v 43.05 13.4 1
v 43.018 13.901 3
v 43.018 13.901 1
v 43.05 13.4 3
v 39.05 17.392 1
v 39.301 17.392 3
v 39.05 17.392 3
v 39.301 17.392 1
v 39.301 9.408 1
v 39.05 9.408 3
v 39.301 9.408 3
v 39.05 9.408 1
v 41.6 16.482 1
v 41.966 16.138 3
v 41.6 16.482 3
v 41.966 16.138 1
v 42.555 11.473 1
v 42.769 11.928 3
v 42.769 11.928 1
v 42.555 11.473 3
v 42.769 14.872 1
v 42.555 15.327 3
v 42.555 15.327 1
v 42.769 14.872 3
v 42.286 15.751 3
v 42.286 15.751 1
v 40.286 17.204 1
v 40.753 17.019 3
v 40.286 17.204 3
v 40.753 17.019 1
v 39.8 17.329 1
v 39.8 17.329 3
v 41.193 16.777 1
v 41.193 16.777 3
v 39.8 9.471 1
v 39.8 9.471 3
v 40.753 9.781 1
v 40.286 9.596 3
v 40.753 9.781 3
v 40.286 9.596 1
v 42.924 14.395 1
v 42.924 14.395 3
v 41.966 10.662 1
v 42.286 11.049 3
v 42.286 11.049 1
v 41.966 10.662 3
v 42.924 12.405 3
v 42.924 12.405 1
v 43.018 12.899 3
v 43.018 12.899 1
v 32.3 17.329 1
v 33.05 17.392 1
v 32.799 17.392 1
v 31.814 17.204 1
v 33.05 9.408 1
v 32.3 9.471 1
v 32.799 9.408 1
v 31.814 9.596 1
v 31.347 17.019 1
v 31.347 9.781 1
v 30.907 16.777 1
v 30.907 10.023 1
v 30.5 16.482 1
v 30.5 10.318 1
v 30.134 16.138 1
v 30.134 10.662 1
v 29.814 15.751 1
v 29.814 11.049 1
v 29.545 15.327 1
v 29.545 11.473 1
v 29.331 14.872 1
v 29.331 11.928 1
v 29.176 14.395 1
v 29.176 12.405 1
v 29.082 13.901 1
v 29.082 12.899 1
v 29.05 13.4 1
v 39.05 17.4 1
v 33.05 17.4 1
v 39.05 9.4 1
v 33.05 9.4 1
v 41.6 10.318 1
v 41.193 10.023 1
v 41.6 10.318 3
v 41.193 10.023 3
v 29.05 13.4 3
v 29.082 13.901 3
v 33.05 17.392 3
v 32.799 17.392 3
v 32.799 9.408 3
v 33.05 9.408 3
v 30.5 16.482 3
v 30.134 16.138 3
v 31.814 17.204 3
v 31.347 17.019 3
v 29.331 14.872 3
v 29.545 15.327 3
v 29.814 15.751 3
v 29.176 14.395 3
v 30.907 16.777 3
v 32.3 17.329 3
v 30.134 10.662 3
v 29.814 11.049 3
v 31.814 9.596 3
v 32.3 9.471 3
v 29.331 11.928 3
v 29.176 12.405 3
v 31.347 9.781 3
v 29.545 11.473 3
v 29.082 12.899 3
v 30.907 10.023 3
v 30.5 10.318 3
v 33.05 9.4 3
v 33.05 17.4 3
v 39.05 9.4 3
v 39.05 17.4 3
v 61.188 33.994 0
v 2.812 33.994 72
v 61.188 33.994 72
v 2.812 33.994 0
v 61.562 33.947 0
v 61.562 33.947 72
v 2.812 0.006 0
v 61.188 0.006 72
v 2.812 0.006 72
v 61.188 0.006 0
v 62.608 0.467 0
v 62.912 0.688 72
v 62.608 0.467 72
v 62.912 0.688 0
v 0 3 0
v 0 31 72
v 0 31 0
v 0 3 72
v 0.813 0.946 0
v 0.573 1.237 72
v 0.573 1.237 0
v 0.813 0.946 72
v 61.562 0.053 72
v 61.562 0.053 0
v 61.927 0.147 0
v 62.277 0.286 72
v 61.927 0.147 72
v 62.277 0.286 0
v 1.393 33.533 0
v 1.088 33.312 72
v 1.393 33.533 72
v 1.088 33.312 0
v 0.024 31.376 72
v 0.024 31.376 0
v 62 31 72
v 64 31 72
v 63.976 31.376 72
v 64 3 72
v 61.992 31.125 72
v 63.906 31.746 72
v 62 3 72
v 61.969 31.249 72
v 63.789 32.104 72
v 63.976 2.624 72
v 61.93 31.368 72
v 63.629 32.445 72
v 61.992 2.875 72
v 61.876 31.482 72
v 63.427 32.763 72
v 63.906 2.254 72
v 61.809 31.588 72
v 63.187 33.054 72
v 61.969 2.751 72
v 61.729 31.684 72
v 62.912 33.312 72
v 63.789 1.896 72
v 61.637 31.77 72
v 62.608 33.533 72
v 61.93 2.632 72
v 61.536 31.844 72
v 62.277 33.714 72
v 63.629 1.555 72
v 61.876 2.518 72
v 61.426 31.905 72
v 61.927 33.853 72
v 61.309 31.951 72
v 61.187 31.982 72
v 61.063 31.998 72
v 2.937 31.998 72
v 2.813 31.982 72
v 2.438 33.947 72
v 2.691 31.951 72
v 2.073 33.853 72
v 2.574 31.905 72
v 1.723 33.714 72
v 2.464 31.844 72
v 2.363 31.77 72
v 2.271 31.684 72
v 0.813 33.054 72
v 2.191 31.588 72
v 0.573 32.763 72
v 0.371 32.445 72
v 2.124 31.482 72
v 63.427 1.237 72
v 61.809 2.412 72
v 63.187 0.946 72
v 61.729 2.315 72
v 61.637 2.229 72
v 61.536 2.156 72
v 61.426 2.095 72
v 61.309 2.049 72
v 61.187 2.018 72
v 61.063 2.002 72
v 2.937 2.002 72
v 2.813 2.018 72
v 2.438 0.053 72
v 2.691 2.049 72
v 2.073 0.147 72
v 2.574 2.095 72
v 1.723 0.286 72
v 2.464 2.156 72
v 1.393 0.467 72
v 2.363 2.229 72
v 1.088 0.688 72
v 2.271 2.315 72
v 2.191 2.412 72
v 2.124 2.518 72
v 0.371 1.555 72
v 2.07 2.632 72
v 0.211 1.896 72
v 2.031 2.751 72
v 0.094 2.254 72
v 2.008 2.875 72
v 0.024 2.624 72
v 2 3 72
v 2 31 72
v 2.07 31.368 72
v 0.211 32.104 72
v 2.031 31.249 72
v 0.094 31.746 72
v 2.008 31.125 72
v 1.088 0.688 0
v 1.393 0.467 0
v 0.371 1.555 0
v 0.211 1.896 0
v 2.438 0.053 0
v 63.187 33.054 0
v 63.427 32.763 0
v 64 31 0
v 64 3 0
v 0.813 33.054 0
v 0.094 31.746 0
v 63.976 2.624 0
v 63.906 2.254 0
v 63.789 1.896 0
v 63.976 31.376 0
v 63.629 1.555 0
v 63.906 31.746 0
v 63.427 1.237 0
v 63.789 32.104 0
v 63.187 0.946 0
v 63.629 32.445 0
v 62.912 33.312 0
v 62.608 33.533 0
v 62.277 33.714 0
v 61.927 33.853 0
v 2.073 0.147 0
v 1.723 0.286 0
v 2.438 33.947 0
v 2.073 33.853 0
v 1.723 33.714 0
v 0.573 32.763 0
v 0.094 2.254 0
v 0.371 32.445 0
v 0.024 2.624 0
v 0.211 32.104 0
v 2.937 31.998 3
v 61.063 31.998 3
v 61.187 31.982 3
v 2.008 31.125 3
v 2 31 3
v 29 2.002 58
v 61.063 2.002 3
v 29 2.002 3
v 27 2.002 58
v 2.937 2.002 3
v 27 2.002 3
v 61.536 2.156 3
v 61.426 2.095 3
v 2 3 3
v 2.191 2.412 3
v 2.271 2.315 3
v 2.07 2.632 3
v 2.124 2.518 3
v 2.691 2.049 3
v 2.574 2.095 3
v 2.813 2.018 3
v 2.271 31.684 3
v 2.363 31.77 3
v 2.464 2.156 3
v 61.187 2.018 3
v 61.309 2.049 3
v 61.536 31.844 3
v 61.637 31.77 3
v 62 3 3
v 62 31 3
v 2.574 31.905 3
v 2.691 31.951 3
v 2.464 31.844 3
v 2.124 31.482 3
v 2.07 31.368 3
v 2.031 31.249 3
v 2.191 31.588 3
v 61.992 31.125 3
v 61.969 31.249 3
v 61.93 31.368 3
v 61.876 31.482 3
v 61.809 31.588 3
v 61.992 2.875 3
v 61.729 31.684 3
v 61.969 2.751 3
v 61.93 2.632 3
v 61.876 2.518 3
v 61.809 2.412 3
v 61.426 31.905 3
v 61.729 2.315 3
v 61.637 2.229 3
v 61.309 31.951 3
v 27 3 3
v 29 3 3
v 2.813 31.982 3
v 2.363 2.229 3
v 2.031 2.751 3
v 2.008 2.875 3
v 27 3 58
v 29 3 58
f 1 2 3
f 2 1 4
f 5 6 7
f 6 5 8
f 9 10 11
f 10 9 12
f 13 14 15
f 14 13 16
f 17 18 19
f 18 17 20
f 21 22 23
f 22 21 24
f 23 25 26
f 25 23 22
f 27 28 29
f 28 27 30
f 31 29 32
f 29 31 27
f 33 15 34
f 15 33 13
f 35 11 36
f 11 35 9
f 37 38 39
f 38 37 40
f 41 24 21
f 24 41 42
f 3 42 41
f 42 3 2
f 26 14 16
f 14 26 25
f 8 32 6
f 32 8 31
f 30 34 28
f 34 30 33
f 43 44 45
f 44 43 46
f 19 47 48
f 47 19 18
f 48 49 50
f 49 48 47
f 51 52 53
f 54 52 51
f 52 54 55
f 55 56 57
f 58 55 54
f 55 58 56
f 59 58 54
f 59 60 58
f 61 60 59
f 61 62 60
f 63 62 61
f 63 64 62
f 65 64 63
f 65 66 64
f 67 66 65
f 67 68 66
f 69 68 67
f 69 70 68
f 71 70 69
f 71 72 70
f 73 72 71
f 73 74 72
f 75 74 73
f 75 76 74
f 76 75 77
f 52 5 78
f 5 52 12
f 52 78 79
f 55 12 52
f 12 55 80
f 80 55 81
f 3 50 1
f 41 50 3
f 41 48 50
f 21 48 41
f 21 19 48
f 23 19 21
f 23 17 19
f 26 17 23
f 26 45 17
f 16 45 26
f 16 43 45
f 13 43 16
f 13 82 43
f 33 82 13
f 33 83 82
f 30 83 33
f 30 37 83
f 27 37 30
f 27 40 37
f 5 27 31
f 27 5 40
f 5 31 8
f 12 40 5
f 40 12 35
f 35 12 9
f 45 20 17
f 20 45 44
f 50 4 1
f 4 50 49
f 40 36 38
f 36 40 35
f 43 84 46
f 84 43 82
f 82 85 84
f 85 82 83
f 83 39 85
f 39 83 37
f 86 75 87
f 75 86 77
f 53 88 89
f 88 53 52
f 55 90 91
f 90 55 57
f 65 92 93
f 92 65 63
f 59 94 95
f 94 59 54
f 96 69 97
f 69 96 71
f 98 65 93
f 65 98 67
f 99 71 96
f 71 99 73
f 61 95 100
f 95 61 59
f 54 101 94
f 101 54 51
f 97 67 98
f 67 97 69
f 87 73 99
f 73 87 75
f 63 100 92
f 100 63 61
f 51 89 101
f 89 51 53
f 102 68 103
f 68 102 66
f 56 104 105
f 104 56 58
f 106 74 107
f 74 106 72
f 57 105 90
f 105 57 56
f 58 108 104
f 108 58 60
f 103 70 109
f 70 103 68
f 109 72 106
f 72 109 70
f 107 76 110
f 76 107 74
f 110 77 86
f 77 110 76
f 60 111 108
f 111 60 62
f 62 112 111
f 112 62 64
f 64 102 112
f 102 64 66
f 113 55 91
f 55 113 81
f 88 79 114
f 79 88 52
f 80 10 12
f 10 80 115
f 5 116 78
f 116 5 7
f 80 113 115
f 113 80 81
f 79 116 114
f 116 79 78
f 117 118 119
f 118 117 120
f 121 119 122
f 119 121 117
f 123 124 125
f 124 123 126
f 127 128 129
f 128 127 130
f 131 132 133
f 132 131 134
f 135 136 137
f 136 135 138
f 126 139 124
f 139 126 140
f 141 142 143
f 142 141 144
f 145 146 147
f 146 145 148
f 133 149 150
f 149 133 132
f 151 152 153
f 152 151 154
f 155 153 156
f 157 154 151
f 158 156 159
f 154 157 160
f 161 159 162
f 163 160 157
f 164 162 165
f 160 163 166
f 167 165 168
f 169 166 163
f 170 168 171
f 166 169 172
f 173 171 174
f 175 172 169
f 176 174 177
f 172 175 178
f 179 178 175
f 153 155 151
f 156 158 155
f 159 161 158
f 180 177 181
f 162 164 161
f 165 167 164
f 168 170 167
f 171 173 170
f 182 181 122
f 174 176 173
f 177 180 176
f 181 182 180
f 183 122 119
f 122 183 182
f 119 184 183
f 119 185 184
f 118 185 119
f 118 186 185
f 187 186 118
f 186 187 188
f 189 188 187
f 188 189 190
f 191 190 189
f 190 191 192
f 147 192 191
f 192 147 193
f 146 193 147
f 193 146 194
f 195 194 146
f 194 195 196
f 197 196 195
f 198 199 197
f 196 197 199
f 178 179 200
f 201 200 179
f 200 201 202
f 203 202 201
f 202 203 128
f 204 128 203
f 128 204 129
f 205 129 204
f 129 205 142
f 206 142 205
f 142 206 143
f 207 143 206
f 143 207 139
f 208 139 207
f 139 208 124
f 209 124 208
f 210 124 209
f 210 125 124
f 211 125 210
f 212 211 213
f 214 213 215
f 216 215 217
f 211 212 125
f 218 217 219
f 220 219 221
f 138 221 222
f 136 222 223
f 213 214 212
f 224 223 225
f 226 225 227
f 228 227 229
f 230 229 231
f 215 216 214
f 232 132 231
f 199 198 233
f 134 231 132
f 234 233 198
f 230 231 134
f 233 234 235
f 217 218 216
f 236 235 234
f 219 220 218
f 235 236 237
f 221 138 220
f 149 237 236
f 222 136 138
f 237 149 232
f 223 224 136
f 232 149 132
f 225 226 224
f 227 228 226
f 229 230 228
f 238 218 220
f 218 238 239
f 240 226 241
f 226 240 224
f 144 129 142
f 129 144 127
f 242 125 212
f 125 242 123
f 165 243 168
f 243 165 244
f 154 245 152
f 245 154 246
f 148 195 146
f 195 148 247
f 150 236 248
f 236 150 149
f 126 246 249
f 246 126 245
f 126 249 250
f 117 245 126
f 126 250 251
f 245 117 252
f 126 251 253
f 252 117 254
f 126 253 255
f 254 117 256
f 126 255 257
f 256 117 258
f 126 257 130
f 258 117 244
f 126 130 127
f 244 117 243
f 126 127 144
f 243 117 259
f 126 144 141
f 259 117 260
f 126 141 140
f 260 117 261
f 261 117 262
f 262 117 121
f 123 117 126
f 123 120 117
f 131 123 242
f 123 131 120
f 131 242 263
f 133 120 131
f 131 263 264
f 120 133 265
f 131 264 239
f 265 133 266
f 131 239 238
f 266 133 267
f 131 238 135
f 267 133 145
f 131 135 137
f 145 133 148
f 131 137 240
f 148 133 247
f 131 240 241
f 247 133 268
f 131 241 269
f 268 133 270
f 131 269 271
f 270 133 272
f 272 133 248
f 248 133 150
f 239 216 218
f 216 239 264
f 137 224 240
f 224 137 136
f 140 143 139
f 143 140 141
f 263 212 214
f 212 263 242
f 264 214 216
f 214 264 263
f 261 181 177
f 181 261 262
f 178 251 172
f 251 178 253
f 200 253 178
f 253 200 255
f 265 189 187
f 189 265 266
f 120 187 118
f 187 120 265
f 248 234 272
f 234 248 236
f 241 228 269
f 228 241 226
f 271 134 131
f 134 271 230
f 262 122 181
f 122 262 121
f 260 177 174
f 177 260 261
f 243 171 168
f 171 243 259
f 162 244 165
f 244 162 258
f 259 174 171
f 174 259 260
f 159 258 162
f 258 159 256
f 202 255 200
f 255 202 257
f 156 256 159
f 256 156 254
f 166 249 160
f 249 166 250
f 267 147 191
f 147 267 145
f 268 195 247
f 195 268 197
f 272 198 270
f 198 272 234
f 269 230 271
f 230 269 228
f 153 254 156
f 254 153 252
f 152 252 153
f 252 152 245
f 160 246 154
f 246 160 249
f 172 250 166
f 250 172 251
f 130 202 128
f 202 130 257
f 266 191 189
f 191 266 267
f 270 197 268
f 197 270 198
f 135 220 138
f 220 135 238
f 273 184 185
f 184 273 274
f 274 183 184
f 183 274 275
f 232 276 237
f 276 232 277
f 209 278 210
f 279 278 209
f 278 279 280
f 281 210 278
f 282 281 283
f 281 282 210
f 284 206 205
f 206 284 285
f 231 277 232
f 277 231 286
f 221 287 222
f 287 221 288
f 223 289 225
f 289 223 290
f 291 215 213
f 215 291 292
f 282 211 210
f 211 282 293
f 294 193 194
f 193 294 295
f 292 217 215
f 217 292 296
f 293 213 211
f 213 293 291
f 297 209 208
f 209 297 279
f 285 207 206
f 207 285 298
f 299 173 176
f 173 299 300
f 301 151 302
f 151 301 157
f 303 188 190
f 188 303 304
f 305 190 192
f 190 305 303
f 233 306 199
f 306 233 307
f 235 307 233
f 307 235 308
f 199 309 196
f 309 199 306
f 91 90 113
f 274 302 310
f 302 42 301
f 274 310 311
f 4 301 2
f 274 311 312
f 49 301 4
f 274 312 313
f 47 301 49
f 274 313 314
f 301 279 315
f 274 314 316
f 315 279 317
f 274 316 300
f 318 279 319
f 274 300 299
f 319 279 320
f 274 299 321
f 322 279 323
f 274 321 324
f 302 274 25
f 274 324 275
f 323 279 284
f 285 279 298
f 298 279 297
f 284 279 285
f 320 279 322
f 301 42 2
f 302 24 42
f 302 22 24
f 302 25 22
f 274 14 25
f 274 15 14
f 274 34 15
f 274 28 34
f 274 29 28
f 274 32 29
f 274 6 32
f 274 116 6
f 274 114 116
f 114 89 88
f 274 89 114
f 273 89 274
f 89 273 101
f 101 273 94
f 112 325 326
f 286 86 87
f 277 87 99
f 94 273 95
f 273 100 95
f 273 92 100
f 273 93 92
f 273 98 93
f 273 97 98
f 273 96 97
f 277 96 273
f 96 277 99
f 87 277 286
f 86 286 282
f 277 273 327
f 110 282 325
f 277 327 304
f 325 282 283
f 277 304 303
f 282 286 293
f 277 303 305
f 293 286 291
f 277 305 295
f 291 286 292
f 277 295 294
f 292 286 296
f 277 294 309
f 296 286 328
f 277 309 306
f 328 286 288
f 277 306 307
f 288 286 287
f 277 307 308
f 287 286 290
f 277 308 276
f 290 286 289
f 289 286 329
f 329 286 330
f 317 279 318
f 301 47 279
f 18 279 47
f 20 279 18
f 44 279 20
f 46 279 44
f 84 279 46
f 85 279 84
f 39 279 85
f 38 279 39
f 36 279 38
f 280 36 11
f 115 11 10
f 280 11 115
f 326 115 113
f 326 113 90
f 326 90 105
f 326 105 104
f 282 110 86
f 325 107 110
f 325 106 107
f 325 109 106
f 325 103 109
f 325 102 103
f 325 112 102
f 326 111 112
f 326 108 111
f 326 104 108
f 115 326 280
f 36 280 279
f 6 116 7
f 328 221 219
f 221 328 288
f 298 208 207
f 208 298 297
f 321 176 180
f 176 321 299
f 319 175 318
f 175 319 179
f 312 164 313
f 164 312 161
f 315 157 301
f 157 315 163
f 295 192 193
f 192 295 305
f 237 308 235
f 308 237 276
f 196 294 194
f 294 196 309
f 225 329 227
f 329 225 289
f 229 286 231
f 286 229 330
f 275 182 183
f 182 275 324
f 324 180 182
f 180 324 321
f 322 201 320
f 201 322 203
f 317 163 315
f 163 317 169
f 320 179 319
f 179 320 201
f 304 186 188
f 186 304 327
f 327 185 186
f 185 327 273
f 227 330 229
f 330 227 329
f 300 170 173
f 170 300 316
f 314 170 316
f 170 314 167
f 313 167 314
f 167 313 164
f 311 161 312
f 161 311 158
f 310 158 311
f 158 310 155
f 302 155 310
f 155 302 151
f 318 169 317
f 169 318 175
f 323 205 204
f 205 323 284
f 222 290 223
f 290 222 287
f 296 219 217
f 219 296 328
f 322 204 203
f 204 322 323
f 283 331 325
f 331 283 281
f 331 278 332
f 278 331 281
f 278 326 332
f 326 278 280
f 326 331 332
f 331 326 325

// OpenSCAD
// Simple Cover for the Iridium Beacon without USB opening

$fn=50; // fragments
wall = 2.0; // wall thickness
end_wall = 3.0; // end wall thickness
internal_width = 60.0; // internal width (X) of the cover
internal_depth = 30.0; // internal depth (Y) of the cover
internal_height = 68.0; // internal height (Z) of the cover
lid_insert = 1.0; // extra height for the lid insert

internal_corner_radius = 1.0; // radius of the internal corner cylinder

support_x_offset = -4.0; // x offset of the support w.r.t. the X center of the void
support_width = 2.0; // x width of the support
support_depth = 1.0; // 1.5; // y depth of the support
support_height = 55.0; // z height of the support

usb_r = 4.0; // radius of the opening for the USB connector
usb_width = 14.0; // total width of the opening for the USB
usb_height = 2.0; // depth of the opening for the USB connector
usb_x_offset = 4.05; // X offset of the USB connector
usb_y_offset = 3.6; // y offset of the USB connector

height = internal_height + end_wall + lid_insert; // cover external height (Z)
width = internal_width + (2 * wall); // cover external width (X)
depth = internal_depth + (2 * wall); // cover external depth (Y)

external_corner_radius = internal_corner_radius + wall; // external corner radius

module cover()
{
    translate([external_corner_radius, external_corner_radius, 0])
        minkowski() {
            cube([(width - (2 * external_corner_radius)), (depth - (2 * external_corner_radius)), (height / 2)]);
            cylinder(h=(height / 2), r=external_corner_radius);
        }
}

module void()
// Void will be higher than required to avoid zero thickness skin across opening
{
    translate([external_corner_radius, external_corner_radius, end_wall])
        minkowski() {
            cube([(internal_width - (2 * internal_corner_radius)), (internal_depth - (2 * internal_corner_radius)), (height / 2)]);
            cylinder(h=(height / 2), r=internal_corner_radius);
        }
}

module usb_opening_end_1()
// Cylinder is taller than it needs to be to avoid zero thickness skins
{
    translate([((usb_width / 2) - usb_r),0,(end_wall - usb_height)]) {
        cylinder(h=end_wall,r=usb_r);
    }
}

module usb_opening_end_2()
// Cylinder is taller than it needs to be to avoid zero thickness skins
{
    translate([(0-((usb_width / 2) - usb_r)),0,(end_wall - usb_height)]) {
        cylinder(h=end_wall,r=usb_r);
    }
}

module usb_opening_mid()
// Cube is taller than it needs to be to avoid zero thickness skins
{
    translate([(-0.5 * (usb_width - (2 * usb_r))), (-0.5 * (2 * usb_r)), (end_wall - usb_height)]) {
        cube([(usb_width - (2 * usb_r)), (2 * usb_r), end_wall]);
    }
}

module usb()
{
    translate([((width / 2) + usb_x_offset), ((depth / 2) - usb_y_offset), 0]) {
        union() {
            usb_opening_end_1();
            usb_opening_end_2();
            usb_opening_mid();
        }
    }
}

module support()
{
    translate([((width / 2) + support_x_offset - (support_width / 2)),wall, 0]) {
        cube([support_width, support_depth, (support_height + end_wall)]);
    }
}

module finished_cover()
{
    union() {
        difference() {
            cover();
            void();
            usb();
        }
        support();
    }
}

finished_cover();
